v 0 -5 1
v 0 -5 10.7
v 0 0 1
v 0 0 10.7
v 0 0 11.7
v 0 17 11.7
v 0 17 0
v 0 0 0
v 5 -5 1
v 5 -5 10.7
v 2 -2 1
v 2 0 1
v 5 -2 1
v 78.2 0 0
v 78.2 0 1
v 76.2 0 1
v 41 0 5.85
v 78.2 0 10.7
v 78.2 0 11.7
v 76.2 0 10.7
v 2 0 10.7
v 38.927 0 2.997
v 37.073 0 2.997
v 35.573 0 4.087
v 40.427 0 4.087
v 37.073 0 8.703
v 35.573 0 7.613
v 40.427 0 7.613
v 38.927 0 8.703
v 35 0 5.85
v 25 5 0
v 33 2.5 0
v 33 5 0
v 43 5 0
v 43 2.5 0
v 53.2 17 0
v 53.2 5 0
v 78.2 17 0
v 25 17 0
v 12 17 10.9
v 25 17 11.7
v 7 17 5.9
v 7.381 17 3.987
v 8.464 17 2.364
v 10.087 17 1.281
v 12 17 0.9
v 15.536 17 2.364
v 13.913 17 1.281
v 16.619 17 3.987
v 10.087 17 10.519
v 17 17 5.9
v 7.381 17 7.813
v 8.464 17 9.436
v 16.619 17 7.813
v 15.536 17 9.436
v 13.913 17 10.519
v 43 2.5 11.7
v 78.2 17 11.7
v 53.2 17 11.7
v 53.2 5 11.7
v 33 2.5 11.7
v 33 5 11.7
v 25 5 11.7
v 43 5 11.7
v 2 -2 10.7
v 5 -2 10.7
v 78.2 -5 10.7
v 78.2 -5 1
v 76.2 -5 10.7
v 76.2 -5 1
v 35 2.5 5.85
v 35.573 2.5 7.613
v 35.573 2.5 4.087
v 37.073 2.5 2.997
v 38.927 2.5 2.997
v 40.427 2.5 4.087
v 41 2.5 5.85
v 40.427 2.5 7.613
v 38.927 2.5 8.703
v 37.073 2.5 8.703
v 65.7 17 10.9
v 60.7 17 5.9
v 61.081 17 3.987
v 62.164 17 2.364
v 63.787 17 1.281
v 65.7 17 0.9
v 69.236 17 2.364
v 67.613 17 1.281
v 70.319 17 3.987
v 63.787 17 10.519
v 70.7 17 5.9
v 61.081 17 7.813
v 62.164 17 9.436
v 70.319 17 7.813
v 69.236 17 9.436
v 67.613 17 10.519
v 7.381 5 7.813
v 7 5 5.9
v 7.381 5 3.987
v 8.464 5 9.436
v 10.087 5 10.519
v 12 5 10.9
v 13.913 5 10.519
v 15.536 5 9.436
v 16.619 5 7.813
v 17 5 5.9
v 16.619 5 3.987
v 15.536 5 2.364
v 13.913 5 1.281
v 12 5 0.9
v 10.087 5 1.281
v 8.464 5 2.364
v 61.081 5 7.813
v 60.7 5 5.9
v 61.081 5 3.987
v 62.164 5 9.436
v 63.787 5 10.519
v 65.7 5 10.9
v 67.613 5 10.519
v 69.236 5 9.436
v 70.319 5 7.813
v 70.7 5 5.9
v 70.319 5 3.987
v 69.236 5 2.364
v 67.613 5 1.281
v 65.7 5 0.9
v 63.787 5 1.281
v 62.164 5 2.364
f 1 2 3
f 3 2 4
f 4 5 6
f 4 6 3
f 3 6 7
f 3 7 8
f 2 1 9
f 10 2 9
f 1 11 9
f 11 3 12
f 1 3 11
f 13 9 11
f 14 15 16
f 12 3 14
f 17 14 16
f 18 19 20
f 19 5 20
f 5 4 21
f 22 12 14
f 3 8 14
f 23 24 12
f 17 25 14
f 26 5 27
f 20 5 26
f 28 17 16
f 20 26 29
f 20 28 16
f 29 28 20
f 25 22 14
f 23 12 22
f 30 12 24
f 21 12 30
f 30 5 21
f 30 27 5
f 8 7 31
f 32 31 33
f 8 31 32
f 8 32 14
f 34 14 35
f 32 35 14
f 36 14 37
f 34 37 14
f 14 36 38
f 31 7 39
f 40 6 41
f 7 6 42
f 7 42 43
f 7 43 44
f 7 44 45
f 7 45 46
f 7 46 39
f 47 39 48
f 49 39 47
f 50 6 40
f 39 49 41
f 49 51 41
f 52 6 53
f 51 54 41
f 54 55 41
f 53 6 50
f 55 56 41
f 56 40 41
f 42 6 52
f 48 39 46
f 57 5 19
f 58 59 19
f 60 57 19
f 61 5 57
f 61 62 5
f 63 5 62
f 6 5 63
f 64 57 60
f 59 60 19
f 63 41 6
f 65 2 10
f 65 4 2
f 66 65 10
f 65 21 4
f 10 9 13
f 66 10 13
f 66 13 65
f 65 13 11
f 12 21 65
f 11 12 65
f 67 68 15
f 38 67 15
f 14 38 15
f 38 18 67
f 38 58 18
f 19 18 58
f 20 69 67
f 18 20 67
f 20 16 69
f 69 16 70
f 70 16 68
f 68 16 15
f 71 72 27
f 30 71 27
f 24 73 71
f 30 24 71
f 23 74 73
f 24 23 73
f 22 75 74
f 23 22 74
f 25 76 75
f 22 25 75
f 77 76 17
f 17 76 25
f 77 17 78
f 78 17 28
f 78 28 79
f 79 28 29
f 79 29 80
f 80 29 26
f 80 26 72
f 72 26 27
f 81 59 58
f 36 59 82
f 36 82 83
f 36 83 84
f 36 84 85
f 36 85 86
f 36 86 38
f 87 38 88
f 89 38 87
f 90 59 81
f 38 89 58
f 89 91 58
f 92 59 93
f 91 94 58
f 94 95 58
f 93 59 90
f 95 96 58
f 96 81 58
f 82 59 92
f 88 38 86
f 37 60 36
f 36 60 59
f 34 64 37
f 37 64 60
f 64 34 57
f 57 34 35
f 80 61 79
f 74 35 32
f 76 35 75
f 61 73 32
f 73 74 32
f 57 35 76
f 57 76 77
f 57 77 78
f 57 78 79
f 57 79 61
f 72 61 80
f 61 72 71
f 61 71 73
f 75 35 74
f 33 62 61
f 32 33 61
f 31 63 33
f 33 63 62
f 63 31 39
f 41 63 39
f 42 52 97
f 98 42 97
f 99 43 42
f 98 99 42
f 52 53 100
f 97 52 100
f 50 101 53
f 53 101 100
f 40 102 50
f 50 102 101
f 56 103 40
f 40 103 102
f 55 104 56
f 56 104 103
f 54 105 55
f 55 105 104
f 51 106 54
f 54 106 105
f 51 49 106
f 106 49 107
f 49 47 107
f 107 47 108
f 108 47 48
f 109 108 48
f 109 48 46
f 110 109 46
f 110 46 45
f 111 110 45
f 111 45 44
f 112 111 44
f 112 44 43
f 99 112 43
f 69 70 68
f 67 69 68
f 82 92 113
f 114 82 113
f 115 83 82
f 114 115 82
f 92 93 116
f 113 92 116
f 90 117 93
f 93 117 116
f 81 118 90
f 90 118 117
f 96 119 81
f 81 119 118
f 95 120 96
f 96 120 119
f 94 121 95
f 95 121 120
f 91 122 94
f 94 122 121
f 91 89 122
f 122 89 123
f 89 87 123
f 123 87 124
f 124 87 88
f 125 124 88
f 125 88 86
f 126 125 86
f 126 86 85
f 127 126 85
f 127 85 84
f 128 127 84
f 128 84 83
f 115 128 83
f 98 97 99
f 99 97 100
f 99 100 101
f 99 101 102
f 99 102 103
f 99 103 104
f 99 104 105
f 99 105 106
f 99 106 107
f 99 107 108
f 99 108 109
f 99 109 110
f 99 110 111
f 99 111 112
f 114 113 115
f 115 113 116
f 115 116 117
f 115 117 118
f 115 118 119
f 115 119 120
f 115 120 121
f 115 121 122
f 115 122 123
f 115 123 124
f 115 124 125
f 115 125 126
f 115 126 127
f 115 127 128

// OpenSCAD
//body
difference(){
	cube(size = [76, 5, 11.7], center=false);

	translate(v=[33,2.5,-2]) cube(size = [10,3,15], center = false);

	//circle
	rotate(a=[90,0,0]) translate (v=[38,5.85,-4]) //trans is (x,z,y) cube(size = [15, 19, 3],center= false);
	cylinder(h=5, r=3,center = false);
}




difference(){
	//left tab
	translate(v=[0,-5,1]) cube(size = [5, 5, 9.7],center = false);

	//left tab's negative
	translate (v=[2,-2,-2]) cube(size = [5,2,15], center = false);
}



difference(){
	//right tab 
	translate(v=[73.2,-5,1]) cube(size = [5, 5, 9.7],center = false);

	//right tab's negative
	translate (v=[71.2,-6,-2]) cube(size = [5,6,15], center = false);
}

 
difference(){
	//left upright tab
	cube(size = [25, 17, 11.7],center= false);	

	//left upright tab's negative
	rotate(a=[90,0,0]) translate (v=[12,5.9,-22]) //trans is (x,z,y) cube(size = [15, 19, 3],center= false);
	cylinder(h=19, r=5,center = false);
}

difference(){
	//right upright tab
	translate(v=[53.2,0,0]) cube(size = [25, 17, 11.7],center= false);

	//right upright tab's negative
	rotate(a=[90,0,0]) translate (v=[65.7,5.9,-22]) //cube(size = [15, 19, 3],center= false);
	cylinder(h=19, r=5,center = false);
}


//make circles octogonal!!-won't need infill for it!
//update: don't need support material!
